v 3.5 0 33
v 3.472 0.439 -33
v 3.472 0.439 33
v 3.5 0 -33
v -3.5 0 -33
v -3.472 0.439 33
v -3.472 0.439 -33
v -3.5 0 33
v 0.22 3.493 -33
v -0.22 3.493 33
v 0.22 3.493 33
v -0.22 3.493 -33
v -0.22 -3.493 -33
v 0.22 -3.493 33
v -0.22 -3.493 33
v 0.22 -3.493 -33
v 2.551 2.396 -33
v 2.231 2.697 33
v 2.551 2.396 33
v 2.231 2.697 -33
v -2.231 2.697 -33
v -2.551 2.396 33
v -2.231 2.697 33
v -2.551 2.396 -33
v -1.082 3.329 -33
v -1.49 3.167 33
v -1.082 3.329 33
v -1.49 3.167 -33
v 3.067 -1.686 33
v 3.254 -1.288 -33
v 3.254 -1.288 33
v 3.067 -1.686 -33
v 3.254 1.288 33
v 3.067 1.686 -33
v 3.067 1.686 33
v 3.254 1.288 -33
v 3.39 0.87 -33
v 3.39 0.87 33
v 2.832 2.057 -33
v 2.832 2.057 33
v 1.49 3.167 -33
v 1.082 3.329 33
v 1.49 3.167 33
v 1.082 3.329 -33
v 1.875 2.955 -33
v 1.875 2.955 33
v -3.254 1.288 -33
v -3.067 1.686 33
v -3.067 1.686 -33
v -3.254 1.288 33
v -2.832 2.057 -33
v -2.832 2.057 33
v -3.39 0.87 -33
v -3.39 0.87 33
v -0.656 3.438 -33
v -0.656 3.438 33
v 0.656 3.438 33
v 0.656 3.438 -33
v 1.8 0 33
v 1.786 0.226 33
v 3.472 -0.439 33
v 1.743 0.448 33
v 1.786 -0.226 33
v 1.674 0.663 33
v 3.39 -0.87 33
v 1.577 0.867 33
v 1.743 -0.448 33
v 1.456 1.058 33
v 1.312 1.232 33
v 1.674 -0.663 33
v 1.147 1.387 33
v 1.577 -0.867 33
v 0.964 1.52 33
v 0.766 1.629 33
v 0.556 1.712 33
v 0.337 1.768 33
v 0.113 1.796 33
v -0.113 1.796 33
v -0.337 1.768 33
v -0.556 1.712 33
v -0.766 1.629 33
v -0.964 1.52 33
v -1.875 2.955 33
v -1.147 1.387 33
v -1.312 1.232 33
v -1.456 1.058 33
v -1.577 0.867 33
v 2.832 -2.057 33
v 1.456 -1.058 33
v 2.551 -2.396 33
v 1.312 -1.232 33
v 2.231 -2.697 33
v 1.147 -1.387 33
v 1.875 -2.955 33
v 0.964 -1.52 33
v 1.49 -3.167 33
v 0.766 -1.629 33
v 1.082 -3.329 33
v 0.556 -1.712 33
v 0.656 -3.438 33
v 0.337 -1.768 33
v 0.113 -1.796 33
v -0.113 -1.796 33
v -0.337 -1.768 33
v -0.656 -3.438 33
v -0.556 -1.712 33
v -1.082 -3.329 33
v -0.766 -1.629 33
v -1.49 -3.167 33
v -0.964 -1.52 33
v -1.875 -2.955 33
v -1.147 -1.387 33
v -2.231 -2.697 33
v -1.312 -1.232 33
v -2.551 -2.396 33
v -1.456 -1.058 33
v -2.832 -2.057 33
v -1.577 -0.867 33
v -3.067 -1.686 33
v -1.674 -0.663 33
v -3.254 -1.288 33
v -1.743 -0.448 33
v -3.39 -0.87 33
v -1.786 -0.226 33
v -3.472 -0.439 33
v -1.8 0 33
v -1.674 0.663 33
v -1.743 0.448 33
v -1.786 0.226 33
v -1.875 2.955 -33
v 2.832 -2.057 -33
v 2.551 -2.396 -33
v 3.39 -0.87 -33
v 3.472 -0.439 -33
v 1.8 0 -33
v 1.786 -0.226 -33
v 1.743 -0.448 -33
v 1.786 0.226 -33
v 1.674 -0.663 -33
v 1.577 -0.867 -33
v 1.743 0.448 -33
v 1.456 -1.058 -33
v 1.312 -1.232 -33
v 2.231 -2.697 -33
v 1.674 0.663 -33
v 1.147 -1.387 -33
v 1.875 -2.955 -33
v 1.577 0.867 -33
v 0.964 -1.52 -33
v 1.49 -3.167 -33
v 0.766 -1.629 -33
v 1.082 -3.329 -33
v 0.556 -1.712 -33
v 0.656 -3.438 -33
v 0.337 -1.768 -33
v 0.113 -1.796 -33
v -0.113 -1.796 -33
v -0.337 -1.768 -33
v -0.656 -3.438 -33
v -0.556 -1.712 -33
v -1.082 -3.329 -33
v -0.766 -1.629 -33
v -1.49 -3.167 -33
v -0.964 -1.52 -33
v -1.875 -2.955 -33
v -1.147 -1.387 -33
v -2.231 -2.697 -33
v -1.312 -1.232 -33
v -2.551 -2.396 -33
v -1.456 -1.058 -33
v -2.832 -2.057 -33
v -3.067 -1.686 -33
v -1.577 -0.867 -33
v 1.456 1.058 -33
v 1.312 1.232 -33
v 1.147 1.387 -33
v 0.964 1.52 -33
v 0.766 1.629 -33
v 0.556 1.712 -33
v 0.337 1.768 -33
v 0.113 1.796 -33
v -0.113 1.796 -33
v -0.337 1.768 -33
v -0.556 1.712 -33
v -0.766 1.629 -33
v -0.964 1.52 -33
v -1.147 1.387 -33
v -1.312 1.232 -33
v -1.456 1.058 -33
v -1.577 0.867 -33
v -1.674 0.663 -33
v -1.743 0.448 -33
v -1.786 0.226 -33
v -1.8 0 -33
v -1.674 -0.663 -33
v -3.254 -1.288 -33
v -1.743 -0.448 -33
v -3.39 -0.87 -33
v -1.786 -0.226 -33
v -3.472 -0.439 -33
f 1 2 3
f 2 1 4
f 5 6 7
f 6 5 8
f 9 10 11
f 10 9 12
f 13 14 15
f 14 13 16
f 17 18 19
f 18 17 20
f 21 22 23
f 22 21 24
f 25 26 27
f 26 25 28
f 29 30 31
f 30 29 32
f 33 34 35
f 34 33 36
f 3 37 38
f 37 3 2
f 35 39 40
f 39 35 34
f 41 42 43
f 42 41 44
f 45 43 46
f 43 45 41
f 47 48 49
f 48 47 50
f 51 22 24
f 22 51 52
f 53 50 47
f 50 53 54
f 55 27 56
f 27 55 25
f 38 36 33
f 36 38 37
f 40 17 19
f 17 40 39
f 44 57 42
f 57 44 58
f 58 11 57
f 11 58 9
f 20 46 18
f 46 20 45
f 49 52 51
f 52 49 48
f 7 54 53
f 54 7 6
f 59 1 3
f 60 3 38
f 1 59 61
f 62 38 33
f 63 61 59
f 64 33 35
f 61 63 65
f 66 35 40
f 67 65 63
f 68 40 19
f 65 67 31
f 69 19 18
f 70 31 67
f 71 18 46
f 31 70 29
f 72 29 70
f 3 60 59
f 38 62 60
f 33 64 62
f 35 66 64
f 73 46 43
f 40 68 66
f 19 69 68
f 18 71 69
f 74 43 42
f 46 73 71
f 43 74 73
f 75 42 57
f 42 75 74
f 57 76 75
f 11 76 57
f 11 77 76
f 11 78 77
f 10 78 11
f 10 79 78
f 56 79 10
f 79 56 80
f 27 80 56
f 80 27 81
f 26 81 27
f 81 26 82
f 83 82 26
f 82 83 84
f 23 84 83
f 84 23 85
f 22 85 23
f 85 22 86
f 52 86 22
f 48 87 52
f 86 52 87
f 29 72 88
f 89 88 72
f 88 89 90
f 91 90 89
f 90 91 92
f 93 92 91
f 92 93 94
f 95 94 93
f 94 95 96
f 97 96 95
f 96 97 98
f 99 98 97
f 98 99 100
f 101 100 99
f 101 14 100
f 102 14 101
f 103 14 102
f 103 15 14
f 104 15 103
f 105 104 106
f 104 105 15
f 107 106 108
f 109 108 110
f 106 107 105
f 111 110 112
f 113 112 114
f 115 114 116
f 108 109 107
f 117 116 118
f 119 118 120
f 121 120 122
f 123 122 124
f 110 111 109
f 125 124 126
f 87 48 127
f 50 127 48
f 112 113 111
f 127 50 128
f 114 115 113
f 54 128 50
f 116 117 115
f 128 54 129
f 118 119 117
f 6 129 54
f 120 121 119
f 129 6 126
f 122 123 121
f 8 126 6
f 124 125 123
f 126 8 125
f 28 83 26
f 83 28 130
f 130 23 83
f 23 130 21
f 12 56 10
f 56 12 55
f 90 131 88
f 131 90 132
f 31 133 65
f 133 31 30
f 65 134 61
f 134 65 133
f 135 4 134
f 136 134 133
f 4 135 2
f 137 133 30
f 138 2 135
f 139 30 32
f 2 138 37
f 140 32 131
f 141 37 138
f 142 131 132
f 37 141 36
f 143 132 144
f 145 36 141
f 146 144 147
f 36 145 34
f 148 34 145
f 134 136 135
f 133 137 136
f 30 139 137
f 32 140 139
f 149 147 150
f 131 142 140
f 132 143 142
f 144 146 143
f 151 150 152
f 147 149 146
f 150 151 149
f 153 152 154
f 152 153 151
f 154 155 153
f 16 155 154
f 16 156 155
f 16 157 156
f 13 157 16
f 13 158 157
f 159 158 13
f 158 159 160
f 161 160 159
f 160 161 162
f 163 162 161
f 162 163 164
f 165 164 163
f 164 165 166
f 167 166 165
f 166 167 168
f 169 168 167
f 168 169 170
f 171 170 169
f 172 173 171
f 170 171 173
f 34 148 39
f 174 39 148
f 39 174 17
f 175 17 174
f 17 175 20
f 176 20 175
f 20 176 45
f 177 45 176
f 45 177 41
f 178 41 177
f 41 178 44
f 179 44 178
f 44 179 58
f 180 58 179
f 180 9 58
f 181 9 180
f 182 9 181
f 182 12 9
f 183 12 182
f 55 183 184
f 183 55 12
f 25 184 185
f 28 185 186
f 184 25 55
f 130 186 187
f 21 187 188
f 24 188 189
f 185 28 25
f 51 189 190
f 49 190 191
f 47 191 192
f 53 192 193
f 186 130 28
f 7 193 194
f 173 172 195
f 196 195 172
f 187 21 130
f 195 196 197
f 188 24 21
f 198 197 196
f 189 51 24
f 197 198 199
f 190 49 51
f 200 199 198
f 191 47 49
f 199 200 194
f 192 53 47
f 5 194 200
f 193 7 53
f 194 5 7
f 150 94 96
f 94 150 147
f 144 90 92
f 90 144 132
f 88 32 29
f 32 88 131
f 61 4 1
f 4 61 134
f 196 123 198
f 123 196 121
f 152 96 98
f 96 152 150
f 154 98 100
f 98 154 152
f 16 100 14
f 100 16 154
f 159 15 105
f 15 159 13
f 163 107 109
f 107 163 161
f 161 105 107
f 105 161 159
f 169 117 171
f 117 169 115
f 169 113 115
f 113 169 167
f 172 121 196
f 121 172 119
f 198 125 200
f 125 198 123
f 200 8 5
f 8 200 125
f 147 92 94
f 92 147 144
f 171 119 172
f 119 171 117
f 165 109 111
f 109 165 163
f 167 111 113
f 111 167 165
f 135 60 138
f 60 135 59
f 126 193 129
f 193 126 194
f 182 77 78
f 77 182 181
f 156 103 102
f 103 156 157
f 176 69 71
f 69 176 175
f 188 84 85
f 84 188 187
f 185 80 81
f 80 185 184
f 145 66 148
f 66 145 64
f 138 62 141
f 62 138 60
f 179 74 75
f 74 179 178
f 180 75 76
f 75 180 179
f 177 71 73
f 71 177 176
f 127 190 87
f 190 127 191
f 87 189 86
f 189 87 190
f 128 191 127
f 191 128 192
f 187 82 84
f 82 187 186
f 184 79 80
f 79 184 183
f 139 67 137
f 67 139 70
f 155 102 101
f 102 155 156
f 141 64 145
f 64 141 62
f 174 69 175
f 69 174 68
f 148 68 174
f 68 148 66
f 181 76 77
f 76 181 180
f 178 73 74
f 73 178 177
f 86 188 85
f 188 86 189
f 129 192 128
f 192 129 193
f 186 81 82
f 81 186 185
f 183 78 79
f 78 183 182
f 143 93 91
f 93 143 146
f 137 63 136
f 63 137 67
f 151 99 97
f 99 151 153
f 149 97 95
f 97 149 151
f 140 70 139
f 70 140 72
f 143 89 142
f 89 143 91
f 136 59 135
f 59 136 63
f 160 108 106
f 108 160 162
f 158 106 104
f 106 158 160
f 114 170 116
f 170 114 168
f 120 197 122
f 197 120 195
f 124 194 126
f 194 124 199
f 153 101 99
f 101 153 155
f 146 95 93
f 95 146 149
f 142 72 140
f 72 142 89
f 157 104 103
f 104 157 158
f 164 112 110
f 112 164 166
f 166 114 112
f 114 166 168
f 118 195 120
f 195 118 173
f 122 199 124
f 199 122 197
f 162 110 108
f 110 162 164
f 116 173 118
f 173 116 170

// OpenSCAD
$fn = 50;


difference() {
	union() {
		translate(v = [0, 0, -33.0000000000]) {
			cylinder(h = 66, r = 3.5000000000);
		}
	}
	union() {
		translate(v = [0, 0, -100.0000000000]) {
			cylinder(h = 200, r = 1.8000000000);
		}
	}
}
